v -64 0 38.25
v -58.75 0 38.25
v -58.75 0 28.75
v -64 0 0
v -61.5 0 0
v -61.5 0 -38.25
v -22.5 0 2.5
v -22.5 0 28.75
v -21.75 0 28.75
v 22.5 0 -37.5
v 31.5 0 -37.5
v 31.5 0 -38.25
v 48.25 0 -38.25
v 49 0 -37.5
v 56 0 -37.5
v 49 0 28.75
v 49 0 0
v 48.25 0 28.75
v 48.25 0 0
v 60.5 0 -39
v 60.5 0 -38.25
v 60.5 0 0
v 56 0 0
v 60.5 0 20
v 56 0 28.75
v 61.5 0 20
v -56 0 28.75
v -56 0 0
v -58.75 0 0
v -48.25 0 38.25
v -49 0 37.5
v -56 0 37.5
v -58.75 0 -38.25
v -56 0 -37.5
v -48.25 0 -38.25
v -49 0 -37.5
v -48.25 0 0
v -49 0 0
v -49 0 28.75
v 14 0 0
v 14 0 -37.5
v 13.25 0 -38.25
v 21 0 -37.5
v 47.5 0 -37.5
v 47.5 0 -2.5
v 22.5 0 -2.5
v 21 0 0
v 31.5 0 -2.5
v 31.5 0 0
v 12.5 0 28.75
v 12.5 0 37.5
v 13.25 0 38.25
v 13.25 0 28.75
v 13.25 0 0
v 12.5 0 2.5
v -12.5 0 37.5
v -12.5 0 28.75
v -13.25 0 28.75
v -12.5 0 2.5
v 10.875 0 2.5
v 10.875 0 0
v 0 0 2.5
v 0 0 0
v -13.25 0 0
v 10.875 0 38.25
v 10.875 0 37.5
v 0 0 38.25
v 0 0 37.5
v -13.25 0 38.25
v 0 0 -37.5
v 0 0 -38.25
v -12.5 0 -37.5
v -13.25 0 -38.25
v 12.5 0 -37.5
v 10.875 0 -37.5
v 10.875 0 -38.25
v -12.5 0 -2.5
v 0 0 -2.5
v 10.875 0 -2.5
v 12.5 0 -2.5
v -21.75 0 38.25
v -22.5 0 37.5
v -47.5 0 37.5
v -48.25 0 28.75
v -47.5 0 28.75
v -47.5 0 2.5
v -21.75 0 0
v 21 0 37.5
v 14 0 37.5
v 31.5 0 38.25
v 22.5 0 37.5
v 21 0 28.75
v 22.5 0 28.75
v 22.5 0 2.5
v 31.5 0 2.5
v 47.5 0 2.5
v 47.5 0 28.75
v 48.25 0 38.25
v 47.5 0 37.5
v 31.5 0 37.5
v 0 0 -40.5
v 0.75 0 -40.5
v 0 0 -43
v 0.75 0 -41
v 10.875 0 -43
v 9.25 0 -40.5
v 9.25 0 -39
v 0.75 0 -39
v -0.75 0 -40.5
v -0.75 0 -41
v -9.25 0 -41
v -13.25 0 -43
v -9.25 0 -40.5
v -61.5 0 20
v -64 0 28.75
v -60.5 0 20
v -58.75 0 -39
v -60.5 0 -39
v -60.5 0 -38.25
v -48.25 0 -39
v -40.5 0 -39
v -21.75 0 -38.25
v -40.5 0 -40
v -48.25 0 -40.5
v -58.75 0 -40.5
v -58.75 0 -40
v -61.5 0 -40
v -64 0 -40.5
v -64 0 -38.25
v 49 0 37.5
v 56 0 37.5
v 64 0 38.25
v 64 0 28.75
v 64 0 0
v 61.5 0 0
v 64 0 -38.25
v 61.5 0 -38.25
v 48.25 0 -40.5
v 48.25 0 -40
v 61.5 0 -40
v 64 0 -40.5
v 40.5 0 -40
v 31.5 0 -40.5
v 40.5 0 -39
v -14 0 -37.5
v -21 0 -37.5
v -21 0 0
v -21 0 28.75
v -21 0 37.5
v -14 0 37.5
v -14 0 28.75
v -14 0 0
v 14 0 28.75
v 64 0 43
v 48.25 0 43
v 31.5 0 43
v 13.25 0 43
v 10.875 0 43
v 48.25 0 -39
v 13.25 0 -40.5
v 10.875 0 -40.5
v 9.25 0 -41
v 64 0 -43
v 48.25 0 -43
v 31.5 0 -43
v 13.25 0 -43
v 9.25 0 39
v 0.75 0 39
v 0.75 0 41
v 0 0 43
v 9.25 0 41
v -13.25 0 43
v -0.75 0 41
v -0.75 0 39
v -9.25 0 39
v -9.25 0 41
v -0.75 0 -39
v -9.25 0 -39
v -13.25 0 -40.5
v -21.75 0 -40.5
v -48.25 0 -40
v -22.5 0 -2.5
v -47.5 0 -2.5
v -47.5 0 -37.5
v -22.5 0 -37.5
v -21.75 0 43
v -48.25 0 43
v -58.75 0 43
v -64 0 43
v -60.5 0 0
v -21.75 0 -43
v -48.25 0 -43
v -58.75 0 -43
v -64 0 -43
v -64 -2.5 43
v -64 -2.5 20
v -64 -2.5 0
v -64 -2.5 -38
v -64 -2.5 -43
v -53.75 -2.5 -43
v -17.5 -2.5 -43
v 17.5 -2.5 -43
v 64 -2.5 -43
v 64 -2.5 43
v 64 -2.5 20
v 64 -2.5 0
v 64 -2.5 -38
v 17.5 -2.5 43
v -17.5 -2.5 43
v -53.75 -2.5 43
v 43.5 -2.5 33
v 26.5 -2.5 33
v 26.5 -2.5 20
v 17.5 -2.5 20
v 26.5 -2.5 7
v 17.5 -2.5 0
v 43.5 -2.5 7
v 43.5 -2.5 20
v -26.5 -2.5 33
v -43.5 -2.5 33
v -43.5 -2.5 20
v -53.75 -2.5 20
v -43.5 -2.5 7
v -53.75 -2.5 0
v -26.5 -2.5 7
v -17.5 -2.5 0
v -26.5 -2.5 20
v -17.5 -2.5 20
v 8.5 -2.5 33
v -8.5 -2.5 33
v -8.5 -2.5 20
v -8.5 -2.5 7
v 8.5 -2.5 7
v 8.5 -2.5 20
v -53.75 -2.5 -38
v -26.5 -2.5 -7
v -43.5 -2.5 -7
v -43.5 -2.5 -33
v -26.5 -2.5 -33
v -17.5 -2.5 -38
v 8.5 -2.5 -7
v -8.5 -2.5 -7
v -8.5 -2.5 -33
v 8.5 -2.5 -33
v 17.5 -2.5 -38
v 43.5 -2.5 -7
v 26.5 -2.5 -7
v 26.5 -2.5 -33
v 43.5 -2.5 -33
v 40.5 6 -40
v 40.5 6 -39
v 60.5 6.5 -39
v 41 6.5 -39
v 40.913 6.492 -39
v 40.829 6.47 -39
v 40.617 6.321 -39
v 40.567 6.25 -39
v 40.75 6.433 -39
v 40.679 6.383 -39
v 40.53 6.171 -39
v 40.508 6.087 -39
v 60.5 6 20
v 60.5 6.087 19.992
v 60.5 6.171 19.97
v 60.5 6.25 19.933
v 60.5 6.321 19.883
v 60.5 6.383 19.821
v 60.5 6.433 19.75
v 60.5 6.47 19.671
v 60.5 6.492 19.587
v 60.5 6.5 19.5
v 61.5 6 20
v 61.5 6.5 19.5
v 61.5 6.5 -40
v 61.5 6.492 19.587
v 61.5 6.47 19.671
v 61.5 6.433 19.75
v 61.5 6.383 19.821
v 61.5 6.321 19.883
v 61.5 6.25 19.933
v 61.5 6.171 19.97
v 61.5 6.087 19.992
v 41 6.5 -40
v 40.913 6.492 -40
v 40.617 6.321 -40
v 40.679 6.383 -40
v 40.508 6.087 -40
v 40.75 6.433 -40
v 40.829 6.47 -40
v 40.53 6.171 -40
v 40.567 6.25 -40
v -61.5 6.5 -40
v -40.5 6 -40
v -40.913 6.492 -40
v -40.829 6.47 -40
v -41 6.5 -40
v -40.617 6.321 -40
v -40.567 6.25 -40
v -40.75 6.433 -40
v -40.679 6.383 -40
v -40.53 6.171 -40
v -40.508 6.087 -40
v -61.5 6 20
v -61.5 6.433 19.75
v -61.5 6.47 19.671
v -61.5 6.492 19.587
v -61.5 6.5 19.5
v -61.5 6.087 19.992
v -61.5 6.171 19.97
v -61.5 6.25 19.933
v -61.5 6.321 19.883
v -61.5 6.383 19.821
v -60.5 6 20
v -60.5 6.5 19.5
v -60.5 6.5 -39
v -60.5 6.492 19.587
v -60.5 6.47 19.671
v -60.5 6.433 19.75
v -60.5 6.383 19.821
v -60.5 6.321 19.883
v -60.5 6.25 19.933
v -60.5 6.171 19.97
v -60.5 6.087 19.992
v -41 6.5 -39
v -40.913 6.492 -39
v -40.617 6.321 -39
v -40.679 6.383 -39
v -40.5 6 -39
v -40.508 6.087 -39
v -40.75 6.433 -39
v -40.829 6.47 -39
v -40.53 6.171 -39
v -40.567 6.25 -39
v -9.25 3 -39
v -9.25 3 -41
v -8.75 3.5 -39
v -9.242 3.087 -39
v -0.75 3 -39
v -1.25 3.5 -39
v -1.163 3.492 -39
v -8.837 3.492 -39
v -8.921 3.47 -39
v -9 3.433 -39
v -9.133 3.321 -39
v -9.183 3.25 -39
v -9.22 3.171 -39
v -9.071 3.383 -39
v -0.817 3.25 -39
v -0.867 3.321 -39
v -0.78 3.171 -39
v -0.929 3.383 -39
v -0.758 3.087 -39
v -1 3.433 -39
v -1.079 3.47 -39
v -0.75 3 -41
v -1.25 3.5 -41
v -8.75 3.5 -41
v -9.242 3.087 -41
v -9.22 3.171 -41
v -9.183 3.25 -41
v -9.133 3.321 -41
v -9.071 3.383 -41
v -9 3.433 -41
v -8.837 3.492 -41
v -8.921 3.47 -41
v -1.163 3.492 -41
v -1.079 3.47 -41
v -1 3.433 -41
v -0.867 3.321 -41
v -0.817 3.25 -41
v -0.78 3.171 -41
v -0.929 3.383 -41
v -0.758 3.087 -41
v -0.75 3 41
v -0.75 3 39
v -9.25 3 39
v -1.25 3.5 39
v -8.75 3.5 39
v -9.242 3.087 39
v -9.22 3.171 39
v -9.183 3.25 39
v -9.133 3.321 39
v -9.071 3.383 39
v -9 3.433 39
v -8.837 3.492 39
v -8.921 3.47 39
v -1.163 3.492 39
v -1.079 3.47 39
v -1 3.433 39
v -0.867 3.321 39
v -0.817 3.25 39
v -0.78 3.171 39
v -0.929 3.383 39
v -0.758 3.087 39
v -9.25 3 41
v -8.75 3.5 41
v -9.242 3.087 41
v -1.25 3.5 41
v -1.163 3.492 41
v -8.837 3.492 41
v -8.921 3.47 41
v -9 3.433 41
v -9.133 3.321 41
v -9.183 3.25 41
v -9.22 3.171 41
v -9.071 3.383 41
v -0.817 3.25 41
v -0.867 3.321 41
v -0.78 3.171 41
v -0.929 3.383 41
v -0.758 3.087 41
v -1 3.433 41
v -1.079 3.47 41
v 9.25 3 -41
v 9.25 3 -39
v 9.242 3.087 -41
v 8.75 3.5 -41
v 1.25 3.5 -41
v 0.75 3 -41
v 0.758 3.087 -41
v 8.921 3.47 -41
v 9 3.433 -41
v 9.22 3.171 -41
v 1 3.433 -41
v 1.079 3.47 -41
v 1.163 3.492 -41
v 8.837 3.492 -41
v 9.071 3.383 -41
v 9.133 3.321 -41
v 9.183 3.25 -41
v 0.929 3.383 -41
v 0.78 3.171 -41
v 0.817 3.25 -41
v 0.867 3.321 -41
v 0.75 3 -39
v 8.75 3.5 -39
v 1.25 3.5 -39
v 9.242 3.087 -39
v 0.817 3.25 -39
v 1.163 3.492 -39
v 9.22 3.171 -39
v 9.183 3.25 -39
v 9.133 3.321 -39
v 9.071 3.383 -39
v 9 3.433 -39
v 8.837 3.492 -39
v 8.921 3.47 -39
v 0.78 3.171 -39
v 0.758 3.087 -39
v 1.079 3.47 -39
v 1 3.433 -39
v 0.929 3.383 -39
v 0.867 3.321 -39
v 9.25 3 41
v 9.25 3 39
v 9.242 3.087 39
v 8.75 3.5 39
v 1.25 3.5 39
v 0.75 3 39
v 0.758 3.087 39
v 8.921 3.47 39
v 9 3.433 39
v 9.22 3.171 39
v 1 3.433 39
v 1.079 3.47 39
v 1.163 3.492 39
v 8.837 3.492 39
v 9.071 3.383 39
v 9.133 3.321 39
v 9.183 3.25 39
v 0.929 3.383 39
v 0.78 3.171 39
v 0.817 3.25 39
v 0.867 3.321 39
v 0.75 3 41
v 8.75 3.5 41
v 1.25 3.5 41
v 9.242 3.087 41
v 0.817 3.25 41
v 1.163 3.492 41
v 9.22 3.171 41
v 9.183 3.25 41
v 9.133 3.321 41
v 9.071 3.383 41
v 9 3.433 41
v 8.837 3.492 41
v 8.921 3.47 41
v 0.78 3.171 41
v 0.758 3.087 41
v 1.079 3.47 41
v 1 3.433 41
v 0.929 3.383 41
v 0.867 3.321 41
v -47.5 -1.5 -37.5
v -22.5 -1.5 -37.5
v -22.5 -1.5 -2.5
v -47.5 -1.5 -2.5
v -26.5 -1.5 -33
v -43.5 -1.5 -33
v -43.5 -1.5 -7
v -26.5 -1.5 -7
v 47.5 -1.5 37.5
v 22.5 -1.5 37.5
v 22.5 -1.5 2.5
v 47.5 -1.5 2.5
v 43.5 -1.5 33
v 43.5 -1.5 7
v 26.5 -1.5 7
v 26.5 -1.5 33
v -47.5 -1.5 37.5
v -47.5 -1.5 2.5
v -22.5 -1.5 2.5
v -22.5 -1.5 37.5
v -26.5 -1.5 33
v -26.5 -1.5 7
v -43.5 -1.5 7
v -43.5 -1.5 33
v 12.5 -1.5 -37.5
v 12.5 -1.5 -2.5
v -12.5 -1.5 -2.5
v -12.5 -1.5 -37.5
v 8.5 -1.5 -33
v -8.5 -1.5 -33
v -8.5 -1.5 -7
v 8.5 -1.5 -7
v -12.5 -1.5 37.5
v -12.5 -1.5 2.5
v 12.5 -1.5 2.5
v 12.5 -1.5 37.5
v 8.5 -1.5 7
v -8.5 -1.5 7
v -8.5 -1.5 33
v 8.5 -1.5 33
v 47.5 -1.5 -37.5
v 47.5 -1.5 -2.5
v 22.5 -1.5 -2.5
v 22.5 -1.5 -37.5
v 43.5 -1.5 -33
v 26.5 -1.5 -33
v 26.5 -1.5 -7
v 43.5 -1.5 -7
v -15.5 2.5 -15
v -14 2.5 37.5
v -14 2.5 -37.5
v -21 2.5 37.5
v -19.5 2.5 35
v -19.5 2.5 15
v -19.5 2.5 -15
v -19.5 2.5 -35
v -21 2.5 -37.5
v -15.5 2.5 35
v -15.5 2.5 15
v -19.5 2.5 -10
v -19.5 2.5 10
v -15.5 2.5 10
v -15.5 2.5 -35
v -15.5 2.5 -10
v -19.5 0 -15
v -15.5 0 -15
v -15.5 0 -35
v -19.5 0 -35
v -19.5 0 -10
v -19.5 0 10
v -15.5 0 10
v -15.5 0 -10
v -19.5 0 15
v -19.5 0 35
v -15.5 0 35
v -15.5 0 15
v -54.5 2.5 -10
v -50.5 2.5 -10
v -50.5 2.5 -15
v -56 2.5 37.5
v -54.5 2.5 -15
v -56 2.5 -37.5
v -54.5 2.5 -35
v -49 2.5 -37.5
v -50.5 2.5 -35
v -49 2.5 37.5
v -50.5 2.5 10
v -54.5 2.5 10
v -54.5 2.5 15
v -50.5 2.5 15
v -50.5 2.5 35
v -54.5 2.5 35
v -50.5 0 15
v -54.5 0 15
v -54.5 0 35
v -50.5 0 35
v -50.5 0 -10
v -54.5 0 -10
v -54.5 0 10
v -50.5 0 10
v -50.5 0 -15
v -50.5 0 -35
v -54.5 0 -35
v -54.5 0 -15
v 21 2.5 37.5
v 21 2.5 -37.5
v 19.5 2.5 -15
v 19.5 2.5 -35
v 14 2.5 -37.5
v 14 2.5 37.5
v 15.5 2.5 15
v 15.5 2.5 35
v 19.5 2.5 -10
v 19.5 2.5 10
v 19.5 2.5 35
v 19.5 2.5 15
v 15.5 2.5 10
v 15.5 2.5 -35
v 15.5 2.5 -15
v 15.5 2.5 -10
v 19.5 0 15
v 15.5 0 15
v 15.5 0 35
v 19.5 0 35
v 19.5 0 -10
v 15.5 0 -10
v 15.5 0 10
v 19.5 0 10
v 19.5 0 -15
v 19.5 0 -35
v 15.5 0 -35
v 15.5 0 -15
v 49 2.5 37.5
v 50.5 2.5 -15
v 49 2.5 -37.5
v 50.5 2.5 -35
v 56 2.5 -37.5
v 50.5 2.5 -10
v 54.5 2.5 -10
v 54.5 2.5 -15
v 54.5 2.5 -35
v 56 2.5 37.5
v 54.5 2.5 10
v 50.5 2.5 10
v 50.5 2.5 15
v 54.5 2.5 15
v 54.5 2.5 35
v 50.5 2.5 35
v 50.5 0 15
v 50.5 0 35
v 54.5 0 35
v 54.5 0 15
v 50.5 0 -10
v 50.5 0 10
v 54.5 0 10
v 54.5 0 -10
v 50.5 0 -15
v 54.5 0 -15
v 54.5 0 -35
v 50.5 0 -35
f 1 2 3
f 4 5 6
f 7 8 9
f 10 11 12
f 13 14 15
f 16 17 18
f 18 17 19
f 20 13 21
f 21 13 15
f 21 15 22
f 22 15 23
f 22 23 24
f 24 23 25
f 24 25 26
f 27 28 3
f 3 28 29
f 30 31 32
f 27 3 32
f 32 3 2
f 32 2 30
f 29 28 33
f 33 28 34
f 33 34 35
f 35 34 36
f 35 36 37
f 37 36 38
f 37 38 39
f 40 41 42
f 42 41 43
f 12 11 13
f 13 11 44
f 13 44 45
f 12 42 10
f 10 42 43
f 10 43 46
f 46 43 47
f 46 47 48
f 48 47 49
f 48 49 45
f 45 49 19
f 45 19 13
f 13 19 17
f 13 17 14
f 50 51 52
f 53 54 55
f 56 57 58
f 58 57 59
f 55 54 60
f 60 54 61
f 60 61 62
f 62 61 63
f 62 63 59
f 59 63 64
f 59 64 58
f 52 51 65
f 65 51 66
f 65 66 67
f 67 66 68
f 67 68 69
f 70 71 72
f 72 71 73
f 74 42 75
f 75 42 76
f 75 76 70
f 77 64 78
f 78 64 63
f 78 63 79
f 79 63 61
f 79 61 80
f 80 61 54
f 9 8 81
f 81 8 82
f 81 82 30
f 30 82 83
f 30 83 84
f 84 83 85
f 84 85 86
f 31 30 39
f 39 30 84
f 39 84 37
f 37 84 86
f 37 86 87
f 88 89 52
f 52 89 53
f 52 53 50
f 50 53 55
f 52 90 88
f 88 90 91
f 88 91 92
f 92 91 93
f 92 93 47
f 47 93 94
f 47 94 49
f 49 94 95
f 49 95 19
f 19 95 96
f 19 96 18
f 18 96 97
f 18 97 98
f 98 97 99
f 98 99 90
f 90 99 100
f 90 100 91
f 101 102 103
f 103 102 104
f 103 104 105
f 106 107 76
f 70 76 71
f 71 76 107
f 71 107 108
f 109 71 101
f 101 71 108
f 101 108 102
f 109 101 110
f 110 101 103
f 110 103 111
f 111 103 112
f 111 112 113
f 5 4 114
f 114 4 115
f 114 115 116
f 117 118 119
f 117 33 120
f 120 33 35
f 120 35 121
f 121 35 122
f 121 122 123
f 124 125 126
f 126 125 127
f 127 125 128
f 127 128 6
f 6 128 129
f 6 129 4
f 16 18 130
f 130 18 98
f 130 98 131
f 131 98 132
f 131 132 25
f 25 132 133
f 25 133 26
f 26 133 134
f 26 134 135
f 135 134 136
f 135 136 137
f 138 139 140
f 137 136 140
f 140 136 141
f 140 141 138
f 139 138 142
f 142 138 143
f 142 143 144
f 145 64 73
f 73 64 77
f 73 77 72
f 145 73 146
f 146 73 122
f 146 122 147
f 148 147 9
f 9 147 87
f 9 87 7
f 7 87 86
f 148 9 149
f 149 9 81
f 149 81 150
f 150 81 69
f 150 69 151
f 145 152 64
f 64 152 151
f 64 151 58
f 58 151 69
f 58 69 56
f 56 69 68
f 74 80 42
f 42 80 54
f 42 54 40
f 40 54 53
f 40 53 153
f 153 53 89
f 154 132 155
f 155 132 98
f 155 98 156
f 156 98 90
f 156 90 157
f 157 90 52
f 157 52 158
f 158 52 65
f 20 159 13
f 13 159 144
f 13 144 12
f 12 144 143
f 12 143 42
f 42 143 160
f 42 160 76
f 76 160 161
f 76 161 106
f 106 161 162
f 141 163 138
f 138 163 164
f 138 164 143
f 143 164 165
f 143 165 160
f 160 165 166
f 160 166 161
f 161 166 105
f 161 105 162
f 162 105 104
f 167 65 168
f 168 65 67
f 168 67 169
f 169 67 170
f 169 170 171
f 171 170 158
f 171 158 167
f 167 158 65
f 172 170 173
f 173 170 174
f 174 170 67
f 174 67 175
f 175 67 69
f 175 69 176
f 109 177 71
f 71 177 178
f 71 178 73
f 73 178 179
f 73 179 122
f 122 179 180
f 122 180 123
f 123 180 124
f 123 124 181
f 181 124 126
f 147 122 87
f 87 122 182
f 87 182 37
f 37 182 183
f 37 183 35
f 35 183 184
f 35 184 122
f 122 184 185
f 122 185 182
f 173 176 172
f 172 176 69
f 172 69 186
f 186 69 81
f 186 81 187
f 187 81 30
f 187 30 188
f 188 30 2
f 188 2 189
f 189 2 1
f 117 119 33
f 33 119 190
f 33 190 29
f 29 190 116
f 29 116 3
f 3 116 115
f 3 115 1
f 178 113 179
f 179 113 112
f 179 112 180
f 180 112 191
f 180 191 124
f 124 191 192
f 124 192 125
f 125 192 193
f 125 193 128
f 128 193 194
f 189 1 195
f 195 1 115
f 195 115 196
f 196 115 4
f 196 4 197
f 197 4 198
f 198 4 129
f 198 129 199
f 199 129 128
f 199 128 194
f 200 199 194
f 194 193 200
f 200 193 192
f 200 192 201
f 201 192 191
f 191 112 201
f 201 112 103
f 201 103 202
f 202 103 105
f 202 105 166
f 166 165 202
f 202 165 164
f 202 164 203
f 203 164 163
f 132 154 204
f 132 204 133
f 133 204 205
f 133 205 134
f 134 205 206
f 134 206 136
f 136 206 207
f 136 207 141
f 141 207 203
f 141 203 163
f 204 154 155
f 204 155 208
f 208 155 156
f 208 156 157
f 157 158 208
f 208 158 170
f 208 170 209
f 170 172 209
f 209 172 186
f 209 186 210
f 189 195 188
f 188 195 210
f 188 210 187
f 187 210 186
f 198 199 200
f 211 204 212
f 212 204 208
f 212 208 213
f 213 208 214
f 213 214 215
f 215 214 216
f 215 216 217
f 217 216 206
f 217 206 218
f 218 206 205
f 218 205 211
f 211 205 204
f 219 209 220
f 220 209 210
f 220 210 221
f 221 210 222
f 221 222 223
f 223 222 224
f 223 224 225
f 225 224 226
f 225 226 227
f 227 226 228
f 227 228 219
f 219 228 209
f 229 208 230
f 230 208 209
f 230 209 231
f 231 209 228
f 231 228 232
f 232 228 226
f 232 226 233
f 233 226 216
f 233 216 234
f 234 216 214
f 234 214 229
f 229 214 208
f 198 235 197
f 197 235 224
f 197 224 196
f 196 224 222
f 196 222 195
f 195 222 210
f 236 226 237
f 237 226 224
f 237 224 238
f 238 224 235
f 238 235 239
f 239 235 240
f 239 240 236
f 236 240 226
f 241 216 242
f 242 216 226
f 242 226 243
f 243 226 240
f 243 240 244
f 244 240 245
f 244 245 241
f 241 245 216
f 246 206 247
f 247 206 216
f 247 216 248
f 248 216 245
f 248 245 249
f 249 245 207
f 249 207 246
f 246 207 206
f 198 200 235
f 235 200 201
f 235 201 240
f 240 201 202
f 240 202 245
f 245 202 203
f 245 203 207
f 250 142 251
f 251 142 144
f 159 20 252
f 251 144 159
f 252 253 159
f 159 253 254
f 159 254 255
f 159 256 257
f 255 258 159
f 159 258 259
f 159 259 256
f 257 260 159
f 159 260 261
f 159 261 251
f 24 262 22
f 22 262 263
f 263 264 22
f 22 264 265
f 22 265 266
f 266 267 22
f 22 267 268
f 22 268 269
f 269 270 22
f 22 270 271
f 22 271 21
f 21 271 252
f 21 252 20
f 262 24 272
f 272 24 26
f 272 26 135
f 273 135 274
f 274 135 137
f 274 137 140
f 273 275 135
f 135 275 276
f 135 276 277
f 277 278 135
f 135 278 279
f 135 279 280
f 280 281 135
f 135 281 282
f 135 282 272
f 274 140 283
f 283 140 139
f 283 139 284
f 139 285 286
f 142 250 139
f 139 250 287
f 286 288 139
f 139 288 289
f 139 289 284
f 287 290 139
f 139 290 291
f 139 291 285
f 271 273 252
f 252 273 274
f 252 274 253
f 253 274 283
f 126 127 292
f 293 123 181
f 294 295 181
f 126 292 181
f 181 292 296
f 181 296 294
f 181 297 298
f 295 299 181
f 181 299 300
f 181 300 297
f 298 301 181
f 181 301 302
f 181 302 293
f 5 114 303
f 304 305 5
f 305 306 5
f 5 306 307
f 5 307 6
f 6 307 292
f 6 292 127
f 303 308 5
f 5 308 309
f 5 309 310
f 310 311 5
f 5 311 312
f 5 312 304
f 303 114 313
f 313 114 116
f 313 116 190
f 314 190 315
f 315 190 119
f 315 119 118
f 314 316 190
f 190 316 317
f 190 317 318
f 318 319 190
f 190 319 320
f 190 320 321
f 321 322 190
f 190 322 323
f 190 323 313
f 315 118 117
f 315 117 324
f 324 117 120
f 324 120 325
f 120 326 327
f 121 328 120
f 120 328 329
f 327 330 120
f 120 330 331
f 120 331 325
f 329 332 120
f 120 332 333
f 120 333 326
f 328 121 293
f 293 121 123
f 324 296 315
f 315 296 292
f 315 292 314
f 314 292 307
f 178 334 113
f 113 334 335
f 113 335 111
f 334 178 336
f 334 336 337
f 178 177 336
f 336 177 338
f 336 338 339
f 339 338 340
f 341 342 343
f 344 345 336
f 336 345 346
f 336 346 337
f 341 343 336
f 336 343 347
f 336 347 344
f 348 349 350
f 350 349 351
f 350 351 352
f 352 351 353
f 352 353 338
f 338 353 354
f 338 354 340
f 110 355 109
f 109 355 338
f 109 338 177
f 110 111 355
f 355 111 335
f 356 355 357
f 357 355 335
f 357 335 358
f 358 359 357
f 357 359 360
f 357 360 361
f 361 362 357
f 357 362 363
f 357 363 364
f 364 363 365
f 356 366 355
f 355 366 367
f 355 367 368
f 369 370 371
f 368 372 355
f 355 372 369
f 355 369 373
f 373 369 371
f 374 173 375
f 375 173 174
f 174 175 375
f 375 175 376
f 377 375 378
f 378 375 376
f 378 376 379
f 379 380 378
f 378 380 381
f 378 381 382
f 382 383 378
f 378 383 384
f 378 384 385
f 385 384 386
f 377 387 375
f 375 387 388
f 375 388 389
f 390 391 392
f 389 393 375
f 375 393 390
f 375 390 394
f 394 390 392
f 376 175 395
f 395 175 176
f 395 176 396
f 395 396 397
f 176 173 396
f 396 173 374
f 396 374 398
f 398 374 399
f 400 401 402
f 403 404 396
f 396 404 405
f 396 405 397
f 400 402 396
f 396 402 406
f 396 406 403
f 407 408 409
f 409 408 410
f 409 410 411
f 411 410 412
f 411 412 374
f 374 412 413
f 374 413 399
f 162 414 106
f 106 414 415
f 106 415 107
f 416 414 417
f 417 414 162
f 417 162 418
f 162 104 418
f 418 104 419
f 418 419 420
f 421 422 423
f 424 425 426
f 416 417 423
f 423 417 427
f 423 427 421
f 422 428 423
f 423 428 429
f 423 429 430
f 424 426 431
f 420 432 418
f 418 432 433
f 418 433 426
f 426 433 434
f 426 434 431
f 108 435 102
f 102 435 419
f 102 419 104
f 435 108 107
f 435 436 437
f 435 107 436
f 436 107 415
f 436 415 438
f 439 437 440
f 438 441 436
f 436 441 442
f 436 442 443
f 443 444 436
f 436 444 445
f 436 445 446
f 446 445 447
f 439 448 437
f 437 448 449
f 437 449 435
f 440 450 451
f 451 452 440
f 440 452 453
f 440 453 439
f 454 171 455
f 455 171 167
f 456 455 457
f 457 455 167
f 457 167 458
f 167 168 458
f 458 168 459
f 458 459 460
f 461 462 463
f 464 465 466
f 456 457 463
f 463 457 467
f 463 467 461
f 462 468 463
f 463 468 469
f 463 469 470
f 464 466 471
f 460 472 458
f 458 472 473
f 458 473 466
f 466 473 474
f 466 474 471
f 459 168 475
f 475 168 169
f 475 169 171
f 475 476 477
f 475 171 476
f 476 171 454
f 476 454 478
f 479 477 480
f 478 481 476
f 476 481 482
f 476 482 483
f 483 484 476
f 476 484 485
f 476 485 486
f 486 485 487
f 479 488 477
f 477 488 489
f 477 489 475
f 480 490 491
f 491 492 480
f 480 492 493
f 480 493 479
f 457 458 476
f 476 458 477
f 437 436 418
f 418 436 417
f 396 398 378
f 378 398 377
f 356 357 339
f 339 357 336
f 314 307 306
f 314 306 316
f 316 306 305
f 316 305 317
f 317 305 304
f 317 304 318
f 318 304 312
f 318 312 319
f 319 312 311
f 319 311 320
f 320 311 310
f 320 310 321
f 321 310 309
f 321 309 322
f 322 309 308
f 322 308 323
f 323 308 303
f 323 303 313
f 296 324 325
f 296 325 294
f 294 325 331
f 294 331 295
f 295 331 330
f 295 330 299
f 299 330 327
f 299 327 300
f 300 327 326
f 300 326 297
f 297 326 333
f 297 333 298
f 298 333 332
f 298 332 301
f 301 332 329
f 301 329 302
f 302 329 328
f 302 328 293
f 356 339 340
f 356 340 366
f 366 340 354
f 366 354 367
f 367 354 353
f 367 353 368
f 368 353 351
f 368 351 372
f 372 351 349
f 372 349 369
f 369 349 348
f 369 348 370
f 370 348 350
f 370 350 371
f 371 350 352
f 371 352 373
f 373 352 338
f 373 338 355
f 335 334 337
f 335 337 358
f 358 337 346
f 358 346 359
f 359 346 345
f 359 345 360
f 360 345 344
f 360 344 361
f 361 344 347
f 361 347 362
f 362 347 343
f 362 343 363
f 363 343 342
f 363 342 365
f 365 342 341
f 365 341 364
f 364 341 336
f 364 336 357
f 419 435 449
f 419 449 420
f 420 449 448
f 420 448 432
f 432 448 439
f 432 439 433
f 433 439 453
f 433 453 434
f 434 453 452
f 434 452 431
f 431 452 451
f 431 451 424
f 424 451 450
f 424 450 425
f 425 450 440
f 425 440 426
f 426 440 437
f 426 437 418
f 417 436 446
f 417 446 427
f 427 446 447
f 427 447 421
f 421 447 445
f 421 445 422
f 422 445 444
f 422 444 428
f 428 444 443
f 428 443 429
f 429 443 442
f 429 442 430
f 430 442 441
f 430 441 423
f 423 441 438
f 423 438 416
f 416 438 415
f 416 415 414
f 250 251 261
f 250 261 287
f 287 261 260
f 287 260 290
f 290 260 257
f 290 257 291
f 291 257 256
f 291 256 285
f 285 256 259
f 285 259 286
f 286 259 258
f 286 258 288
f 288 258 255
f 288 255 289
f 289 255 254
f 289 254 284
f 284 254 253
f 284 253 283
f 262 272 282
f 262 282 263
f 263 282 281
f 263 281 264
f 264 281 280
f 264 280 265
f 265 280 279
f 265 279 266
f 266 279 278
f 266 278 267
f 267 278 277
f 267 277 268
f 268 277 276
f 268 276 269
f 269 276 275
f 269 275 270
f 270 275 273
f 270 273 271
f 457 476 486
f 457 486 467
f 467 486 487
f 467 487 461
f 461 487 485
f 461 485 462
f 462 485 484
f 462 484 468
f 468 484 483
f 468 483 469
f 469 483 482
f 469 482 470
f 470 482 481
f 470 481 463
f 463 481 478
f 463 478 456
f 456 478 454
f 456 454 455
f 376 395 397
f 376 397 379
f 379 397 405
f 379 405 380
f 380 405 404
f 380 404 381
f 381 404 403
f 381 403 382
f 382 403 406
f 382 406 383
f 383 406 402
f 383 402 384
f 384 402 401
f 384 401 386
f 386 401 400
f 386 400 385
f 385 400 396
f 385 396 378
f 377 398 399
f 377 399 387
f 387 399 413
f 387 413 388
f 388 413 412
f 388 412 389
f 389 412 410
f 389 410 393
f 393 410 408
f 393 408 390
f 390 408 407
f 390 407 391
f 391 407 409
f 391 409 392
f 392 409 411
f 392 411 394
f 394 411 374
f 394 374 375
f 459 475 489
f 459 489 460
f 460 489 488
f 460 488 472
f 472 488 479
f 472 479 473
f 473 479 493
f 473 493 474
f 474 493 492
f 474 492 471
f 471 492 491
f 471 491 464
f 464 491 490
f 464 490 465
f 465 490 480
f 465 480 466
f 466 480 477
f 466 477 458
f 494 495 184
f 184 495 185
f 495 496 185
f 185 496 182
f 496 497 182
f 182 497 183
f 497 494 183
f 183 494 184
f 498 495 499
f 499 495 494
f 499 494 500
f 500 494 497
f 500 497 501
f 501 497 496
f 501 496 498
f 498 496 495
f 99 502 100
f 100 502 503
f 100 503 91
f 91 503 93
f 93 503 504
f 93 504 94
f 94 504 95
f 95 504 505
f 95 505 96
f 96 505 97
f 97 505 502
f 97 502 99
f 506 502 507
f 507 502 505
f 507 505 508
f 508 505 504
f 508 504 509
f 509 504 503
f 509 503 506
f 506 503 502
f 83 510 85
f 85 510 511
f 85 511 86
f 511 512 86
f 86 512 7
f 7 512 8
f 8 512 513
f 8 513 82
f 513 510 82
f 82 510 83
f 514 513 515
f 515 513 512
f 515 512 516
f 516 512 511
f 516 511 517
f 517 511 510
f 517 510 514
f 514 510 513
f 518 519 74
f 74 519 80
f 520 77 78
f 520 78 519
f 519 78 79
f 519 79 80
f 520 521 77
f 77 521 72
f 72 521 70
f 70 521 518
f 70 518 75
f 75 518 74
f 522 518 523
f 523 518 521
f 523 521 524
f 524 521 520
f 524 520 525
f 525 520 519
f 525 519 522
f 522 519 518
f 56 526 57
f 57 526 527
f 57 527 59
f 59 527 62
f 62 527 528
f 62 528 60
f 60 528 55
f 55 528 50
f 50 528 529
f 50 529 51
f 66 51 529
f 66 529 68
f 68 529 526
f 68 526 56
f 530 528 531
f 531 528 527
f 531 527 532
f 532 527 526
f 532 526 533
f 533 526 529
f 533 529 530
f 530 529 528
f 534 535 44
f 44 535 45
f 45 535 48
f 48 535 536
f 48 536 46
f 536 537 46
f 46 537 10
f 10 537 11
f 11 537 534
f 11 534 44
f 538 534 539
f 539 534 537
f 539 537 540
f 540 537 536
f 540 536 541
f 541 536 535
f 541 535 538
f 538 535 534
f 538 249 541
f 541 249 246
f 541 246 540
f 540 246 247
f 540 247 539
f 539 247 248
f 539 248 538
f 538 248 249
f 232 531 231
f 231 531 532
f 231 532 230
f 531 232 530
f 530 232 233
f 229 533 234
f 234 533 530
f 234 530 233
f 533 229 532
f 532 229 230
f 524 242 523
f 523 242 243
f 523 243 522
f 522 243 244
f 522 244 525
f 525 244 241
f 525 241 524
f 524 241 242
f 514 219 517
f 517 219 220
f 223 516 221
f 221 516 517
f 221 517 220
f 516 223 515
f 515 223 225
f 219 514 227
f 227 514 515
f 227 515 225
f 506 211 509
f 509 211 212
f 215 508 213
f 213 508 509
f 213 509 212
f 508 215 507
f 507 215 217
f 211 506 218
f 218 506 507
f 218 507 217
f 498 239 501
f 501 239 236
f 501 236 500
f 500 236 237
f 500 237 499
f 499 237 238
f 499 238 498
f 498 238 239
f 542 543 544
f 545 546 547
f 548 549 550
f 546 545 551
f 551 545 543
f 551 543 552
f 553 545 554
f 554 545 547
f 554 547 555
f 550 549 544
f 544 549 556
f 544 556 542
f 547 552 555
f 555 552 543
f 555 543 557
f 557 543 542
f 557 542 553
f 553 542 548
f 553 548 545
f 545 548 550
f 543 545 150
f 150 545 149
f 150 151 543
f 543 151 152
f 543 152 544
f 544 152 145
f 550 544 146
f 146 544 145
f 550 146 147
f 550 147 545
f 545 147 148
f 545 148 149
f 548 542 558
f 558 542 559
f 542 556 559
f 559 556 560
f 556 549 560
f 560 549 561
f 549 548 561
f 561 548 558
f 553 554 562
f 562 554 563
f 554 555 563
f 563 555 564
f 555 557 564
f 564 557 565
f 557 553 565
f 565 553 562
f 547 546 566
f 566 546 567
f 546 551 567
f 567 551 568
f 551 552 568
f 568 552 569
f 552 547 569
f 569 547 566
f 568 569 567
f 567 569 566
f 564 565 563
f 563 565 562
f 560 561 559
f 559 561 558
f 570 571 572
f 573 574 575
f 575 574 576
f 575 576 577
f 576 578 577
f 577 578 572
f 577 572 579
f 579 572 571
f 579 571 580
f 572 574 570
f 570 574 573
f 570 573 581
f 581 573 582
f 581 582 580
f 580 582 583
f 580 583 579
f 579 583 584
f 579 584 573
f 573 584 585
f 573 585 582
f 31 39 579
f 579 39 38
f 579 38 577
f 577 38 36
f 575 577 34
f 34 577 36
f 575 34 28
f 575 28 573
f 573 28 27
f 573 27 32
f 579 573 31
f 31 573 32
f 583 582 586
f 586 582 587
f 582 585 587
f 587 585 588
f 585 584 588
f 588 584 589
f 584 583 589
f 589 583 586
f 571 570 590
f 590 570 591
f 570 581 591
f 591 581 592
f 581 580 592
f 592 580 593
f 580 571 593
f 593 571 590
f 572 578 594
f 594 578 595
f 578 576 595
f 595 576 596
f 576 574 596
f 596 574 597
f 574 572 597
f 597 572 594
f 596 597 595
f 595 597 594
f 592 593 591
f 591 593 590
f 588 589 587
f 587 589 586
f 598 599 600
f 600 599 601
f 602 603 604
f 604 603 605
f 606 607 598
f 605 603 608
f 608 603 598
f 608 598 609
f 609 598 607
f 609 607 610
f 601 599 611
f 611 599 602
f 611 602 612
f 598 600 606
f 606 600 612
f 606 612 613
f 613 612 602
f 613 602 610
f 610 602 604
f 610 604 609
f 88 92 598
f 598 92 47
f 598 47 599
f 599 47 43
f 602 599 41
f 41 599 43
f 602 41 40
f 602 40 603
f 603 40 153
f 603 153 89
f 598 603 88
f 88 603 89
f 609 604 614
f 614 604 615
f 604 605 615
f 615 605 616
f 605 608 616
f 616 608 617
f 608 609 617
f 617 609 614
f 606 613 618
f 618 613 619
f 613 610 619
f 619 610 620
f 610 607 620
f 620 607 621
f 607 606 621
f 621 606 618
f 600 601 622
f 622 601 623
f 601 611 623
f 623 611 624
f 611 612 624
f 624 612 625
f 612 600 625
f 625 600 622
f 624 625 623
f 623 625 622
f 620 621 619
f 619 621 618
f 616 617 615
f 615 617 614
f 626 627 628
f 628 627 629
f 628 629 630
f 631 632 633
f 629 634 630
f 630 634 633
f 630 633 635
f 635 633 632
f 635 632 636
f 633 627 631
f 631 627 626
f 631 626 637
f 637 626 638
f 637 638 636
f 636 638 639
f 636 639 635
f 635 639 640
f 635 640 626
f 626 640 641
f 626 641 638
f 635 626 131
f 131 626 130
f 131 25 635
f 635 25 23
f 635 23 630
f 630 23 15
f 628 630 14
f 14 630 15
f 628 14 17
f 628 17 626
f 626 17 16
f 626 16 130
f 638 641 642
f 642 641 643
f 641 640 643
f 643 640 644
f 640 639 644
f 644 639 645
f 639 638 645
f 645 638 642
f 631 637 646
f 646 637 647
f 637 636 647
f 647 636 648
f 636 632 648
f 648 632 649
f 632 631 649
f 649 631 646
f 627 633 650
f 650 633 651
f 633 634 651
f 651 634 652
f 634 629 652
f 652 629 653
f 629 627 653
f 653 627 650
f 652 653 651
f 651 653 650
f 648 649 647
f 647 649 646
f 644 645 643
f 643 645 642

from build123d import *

# Parameters (mm, degrees)
SKETCH2_W           = 128
SKETCH2_H           = 86
BOSS_EXTRUDE1_DEPTH = 2.5
SKETCH9_W           = 8.5
SKETCH9_H           = 2
BOSS_EXTRUDE3_DEPTH = 6.5
CUT_EXTRUDE9_START  = 3.5
SKETCH10_W          = 8.5
SKETCH10_H          = 2
CUT_EXTRUDE9_DEPTH  = 74.877322259
FILLET1_R           = 0.5
SKETCH3_W           = 25
SKETCH3_H           = 35
CUT_EXTRUDE10_DEPTH = 1.5
SKETCH11_W          = 17
SKETCH11_H          = 26
CUT_EXTRUDE11_DEPTH = 10
SKETCH12_W          = 7
SKETCH12_H          = 75
SKETCH12_W_2        = 4
SKETCH12_H_2        = 20
BOSS_EXTRUDE4_DEPTH = 2.5


with BuildPart() as part:
    # Sketch2 → Boss-Extrude1 (new body)
    with BuildSketch(Plane(origin=(0, 0, 0), x_dir=(1, 0, 0), z_dir=(0, 1, 0))):
        Rectangle(SKETCH2_W, SKETCH2_H)
    extrude(amount=-BOSS_EXTRUDE1_DEPTH)

    # Sketch9 → Boss-Extrude3 (add)
    with BuildSketch(Plane(origin=(0, 0, 0), x_dir=(1, 0, 0), z_dir=(0, 1, 0))):
        Polygon((-61.5, -20), (-60.5, -20), (-60.5, 39), (-40.5, 39), (-40.5, 40), (-61.5, 40), align=None)
        Polygon((40.5, 40), (61.5, 40), (61.5, -20), (60.5, -20), (60.5, 39), (40.5, 39), align=None)
        with Locations((-5, 40)):
            Rectangle(SKETCH9_W, SKETCH9_H)
        with Locations((5, 40)):
            Rectangle(SKETCH9_W, SKETCH9_H)
        with Locations((-5, -40)):
            Rectangle(SKETCH9_W, SKETCH9_H)
        with Locations((5, -40)):
            Rectangle(SKETCH9_W, SKETCH9_H)
    extrude(amount=BOSS_EXTRUDE3_DEPTH)

    # Sketch10 → Cut-Extrude9 (cut, through all)
    with BuildSketch(Plane(origin=(0, 0, 0), x_dir=(1, 0, 0), z_dir=(0, 1, 0)).offset(CUT_EXTRUDE9_START)):
        with Locations((-5, 40)):
            Rectangle(SKETCH10_W, SKETCH10_H)
        with Locations((5, 40)):
            Rectangle(SKETCH10_W, SKETCH10_H)
        with Locations((-5, -40)):
            Rectangle(SKETCH10_W, SKETCH10_H)
        with Locations((5, -40)):
            Rectangle(SKETCH10_W, SKETCH10_H)
    extrude(amount=CUT_EXTRUDE9_DEPTH, mode=Mode.SUBTRACT)

    # Fillet1
    fillet1_edges = [part.edges().sort_by_distance(p)[0] for p in [
        (0.75, 3.5, -40),
        (9.25, 3.5, -40),
        (-9.25, 3.5, 40),
        (-0.75, 3.5, 40),
        (0.75, 3.5, 40),
        (9.25, 3.5, 40),
        (-9.25, 3.5, -40),
        (-0.75, 3.5, -40),
        (40.5, 6.5, -39.5),
        (61, 6.5, 20),
        (-61, 6.5, 20),
        (-40.5, 6.5, -39.5),
    ]]
    fillet(fillet1_edges, radius=FILLET1_R)

    # Sketch3 → Cut-Extrude10 (cut)
    with BuildSketch(Plane(origin=(0, 0, 0), x_dir=(1, 0, 0), z_dir=(0, 1, 0))):
        with Locations((-35, 20)):
            Rectangle(SKETCH3_W, SKETCH3_H)
        with Locations((-35, -20)):
            Rectangle(SKETCH3_W, SKETCH3_H)
        with Locations((0, 20)):
            Rectangle(SKETCH3_W, SKETCH3_H)
        with Locations((0, -20)):
            Rectangle(SKETCH3_W, SKETCH3_H)
        with Locations((35, 20)):
            Rectangle(SKETCH3_W, SKETCH3_H)
        with Locations((35, -20)):
            Rectangle(SKETCH3_W, SKETCH3_H)
    extrude(amount=-CUT_EXTRUDE10_DEPTH, mode=Mode.SUBTRACT)

    # Sketch11 → Cut-Extrude11 (cut)
    with BuildSketch(Plane(origin=(0, 0, 0), x_dir=(1, 0, 0), z_dir=(0, 1, 0))):
        with Locations((0, -20)):
            Rectangle(SKETCH11_W, SKETCH11_H)
        with Locations((-35, -20)):
            Rectangle(SKETCH11_W, SKETCH11_H)
        with Locations((0, 20)):
            Rectangle(SKETCH11_W, SKETCH11_H)
        with Locations((35, 20)):
            Rectangle(SKETCH11_W, SKETCH11_H)
        with Locations((35, -20)):
            Rectangle(SKETCH11_W, SKETCH11_H)
        with Locations((-35, 20)):
            Rectangle(SKETCH11_W, SKETCH11_H)
    extrude(amount=-CUT_EXTRUDE11_DEPTH, mode=Mode.SUBTRACT)

    # Sketch12 → Boss-Extrude4 (add)
    # profile 1 of 4: a face of its own
    with BuildSketch(Plane(origin=(0, 0, 0), x_dir=(1, 0, 0), z_dir=(0, 1, 0))):
        with Locations((-17.5, 0)):
            Rectangle(SKETCH12_W, SKETCH12_H)
        with Locations((-17.5, 0)):
            Rectangle(SKETCH12_W_2, SKETCH12_H_2, mode=Mode.SUBTRACT)
        with Locations((-17.5, 25)):
            Rectangle(SKETCH12_W_2, SKETCH12_H_2, mode=Mode.SUBTRACT)
        with Locations((-17.5, -25)):
            Rectangle(SKETCH12_W_2, SKETCH12_H_2, mode=Mode.SUBTRACT)
    # profile 2 of 4: a face of its own
    with BuildSketch(Plane(origin=(0, 0, 0), x_dir=(1, 0, 0), z_dir=(0, 1, 0))):
        with Locations((-52.5, 0)):
            Rectangle(SKETCH12_W, SKETCH12_H)
        with Locations((-52.5, -25)):
            Rectangle(SKETCH12_W_2, SKETCH12_H_2, mode=Mode.SUBTRACT)
        with Locations((-52.5, 0)):
            Rectangle(SKETCH12_W_2, SKETCH12_H_2, mode=Mode.SUBTRACT)
        with Locations((-52.5, 25)):
            Rectangle(SKETCH12_W_2, SKETCH12_H_2, mode=Mode.SUBTRACT)
    # profile 3 of 4: a face of its own
    with BuildSketch(Plane(origin=(0, 0, 0), x_dir=(1, 0, 0), z_dir=(0, 1, 0))):
        with Locations((17.5, 0)):
            Rectangle(SKETCH12_W, SKETCH12_H)
        with Locations((17.5, -25)):
            Rectangle(SKETCH12_W_2, SKETCH12_H_2, mode=Mode.SUBTRACT)
        with Locations((17.5, 0)):
            Rectangle(SKETCH12_W_2, SKETCH12_H_2, mode=Mode.SUBTRACT)
        with Locations((17.5, 25)):
            Rectangle(SKETCH12_W_2, SKETCH12_H_2, mode=Mode.SUBTRACT)
    # profile 4 of 4: a face of its own
    with BuildSketch(Plane(origin=(0, 0, 0), x_dir=(1, 0, 0), z_dir=(0, 1, 0))):
        with Locations((52.5, 0)):
            Rectangle(SKETCH12_W, SKETCH12_H)
        with Locations((52.5, -25)):
            Rectangle(SKETCH12_W_2, SKETCH12_H_2, mode=Mode.SUBTRACT)
        with Locations((52.5, 0)):
            Rectangle(SKETCH12_W_2, SKETCH12_H_2, mode=Mode.SUBTRACT)
        with Locations((52.5, 25)):
            Rectangle(SKETCH12_W_2, SKETCH12_H_2, mode=Mode.SUBTRACT)
    extrude(amount=BOSS_EXTRUDE4_DEPTH)


solid = part.part
